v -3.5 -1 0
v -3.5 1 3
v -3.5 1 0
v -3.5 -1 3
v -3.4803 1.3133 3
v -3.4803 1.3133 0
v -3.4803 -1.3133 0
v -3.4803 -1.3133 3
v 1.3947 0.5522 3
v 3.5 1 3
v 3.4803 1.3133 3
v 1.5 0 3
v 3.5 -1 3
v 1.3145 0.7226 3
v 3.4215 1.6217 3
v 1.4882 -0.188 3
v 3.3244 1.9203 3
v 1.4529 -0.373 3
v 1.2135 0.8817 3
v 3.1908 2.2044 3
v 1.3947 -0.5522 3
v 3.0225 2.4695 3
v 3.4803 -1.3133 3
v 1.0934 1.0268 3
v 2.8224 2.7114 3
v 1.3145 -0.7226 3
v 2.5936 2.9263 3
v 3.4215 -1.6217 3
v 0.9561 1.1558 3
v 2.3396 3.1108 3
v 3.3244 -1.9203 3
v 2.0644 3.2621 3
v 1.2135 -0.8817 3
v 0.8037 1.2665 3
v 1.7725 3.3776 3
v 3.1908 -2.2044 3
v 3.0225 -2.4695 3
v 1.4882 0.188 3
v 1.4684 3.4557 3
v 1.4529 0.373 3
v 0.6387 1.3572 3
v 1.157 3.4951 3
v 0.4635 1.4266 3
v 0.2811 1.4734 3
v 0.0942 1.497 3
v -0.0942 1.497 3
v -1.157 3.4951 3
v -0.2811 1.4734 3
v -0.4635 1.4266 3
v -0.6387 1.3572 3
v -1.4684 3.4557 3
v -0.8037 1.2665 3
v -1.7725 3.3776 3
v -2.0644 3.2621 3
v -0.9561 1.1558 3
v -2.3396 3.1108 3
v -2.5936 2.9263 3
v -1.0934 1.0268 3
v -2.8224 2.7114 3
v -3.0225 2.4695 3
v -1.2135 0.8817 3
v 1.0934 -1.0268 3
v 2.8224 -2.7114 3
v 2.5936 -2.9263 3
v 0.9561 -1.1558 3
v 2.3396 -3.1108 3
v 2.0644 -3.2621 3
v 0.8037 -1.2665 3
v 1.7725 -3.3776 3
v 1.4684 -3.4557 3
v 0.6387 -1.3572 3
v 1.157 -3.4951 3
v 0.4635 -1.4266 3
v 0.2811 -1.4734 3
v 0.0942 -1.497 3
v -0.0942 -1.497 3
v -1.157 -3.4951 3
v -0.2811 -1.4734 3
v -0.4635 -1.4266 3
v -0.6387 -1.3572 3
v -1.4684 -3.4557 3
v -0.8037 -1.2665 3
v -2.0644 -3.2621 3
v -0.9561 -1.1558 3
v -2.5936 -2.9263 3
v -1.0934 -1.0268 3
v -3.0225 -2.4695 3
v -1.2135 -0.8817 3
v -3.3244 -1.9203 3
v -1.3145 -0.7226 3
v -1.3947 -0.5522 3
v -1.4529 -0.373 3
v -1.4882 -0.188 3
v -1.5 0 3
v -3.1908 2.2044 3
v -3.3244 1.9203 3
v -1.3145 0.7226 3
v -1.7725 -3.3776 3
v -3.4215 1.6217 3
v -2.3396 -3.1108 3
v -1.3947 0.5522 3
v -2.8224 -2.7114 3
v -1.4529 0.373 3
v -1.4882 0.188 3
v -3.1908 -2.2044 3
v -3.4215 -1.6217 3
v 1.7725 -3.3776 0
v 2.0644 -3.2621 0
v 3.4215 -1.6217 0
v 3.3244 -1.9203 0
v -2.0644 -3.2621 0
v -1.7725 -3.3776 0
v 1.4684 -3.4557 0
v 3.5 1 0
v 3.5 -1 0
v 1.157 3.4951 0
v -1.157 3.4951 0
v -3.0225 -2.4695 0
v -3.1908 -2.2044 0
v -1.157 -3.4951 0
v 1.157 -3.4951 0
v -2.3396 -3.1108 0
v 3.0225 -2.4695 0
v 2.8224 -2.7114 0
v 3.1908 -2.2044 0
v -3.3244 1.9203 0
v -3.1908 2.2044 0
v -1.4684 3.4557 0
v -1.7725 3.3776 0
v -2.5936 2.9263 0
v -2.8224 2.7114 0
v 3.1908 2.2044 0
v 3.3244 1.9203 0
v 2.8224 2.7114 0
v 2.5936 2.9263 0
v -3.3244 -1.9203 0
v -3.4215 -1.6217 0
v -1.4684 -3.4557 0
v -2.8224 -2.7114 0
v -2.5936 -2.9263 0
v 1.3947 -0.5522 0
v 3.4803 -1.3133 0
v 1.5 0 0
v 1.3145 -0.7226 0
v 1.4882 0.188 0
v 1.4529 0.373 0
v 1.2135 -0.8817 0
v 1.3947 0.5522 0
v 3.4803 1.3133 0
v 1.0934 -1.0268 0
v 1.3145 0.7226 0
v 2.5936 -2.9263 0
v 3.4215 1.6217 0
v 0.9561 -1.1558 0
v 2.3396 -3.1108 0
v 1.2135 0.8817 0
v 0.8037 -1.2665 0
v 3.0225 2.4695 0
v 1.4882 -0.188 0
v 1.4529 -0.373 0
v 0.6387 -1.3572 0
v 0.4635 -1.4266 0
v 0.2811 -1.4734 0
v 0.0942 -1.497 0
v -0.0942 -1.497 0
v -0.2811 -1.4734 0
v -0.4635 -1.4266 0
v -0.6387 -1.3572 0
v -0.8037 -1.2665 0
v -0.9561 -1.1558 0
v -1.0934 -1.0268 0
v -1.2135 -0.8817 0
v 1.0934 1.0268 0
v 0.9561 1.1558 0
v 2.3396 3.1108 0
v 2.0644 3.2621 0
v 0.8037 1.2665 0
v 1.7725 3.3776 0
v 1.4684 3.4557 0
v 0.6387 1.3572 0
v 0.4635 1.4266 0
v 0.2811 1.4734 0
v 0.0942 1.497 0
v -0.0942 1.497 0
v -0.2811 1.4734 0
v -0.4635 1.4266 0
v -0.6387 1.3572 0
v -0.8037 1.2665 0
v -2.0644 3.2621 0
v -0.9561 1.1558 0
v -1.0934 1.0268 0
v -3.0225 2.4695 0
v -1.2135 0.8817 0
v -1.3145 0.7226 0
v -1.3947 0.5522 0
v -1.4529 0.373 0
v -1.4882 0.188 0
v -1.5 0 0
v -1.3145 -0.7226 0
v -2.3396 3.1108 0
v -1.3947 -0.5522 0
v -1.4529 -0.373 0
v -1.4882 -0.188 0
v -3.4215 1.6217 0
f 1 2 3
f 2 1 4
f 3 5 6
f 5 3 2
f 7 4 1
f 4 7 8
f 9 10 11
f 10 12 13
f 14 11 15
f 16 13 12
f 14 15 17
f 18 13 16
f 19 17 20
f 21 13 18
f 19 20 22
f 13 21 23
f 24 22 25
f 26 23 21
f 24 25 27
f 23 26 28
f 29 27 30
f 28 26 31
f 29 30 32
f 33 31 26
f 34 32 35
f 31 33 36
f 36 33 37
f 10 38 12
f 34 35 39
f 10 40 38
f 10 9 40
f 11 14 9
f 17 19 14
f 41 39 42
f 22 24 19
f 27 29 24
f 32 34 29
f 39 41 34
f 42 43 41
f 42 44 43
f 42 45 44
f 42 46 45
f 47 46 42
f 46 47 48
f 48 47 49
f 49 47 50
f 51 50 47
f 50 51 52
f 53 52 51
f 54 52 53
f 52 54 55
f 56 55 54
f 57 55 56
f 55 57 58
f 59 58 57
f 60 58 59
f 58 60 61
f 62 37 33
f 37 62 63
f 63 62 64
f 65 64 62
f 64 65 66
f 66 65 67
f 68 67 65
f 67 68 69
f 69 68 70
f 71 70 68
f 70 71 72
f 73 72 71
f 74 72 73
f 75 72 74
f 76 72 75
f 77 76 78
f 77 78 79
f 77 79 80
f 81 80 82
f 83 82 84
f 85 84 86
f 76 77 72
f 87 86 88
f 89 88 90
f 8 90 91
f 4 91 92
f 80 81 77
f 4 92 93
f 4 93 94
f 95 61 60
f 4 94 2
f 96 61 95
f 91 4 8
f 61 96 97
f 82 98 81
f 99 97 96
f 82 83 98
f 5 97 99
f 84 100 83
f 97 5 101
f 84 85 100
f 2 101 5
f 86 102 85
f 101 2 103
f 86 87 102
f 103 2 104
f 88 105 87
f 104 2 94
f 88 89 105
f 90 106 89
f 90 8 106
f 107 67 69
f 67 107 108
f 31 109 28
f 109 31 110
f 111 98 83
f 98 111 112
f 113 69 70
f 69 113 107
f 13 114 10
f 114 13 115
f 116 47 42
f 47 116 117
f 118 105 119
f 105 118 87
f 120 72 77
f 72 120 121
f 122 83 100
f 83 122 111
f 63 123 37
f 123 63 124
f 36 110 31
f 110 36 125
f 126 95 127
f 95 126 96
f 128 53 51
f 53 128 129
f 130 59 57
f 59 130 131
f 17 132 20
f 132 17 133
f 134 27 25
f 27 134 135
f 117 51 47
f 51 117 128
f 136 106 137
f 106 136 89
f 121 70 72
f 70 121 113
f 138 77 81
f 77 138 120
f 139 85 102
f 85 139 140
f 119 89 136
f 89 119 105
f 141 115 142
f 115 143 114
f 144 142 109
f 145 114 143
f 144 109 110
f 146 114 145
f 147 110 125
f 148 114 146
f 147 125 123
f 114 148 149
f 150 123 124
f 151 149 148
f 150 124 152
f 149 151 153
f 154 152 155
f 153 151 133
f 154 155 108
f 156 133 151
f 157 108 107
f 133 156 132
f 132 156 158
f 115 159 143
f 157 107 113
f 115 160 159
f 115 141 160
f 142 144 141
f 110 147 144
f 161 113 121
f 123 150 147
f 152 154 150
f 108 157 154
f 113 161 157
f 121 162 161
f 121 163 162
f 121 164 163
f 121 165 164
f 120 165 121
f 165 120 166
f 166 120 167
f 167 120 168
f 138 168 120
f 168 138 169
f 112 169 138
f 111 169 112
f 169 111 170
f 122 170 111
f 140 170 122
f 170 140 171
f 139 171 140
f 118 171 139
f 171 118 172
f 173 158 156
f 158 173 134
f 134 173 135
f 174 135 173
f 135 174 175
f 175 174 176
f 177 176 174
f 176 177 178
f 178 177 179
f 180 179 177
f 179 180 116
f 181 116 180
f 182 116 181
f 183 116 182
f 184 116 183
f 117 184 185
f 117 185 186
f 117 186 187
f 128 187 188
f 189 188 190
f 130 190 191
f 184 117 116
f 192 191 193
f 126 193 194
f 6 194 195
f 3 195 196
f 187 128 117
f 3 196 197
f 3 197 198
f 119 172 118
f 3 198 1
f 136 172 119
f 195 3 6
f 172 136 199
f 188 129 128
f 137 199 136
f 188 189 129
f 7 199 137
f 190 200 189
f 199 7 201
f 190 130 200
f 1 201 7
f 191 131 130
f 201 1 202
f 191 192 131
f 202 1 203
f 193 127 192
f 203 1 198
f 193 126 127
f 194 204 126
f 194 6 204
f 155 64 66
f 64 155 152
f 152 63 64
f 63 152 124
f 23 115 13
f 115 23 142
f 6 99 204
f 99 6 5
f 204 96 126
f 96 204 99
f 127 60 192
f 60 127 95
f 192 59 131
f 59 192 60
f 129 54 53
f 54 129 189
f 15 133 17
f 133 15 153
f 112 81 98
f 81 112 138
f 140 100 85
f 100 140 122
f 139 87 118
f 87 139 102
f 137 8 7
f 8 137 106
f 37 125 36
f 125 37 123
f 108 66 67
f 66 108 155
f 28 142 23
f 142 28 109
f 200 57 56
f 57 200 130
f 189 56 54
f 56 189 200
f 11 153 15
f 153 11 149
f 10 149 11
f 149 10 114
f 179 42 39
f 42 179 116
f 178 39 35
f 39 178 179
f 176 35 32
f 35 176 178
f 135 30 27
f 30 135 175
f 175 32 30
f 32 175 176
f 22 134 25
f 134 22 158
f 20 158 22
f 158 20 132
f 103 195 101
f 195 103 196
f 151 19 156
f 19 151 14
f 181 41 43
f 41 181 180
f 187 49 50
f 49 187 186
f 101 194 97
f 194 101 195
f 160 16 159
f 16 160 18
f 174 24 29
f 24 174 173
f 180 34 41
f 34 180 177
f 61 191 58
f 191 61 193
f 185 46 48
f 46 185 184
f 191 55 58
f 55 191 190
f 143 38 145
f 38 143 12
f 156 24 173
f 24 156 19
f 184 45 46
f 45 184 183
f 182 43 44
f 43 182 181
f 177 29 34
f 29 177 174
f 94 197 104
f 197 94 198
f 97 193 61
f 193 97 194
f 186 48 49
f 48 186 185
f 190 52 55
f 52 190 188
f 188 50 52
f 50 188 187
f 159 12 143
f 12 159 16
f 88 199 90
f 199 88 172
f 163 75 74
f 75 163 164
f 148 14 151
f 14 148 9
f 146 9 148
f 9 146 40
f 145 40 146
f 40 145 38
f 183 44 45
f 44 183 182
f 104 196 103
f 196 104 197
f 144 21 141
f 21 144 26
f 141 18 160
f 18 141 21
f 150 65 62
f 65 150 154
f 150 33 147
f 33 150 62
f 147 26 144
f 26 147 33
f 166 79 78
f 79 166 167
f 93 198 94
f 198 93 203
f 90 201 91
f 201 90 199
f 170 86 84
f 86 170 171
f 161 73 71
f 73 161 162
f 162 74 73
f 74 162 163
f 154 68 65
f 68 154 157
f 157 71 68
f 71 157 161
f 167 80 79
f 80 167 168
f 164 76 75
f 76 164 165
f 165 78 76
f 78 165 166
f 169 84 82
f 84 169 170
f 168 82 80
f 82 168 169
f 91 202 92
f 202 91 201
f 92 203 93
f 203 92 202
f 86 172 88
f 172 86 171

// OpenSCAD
$fn = 50;


difference() {
	union() {
		translate(v = [0, 0, 0]) {
			rotate(a = [0, 0, 0]) {
				hull() {
					translate(v = [-1.0000000000, 1.0000000000, 0]) {
						rotate(a = [0, 0, 0]) {
							translate(v = [0, 0, 0]) {
								rotate(a = [0, 0, 0]) {
									cylinder(h = 3, r = 2.5000000000);
								}
							}
						}
					}
					translate(v = [1.0000000000, 1.0000000000, 0]) {
						rotate(a = [0, 0, 0]) {
							translate(v = [0, 0, 0]) {
								rotate(a = [0, 0, 0]) {
									cylinder(h = 3, r = 2.5000000000);
								}
							}
						}
					}
					translate(v = [-1.0000000000, -1.0000000000, 0]) {
						rotate(a = [0, 0, 0]) {
							translate(v = [0, 0, 0]) {
								rotate(a = [0, 0, 0]) {
									cylinder(h = 3, r = 2.5000000000);
								}
							}
						}
					}
					translate(v = [1.0000000000, -1.0000000000, 0]) {
						rotate(a = [0, 0, 0]) {
							translate(v = [0, 0, 0]) {
								rotate(a = [0, 0, 0]) {
									cylinder(h = 3, r = 2.5000000000);
								}
							}
						}
					}
				}
			}
		}
	}
	union() {
		translate(v = [0.0000000000, 0.0000000000, 0]) {
			rotate(a = [0, 0, 0]) {
				translate(v = [0, 0, -50]) {
					rotate(a = [0, 0, 0]) {
						cylinder(h = 100, r = 1.5000000000);
					}
				}
			}
		}
	}
}
